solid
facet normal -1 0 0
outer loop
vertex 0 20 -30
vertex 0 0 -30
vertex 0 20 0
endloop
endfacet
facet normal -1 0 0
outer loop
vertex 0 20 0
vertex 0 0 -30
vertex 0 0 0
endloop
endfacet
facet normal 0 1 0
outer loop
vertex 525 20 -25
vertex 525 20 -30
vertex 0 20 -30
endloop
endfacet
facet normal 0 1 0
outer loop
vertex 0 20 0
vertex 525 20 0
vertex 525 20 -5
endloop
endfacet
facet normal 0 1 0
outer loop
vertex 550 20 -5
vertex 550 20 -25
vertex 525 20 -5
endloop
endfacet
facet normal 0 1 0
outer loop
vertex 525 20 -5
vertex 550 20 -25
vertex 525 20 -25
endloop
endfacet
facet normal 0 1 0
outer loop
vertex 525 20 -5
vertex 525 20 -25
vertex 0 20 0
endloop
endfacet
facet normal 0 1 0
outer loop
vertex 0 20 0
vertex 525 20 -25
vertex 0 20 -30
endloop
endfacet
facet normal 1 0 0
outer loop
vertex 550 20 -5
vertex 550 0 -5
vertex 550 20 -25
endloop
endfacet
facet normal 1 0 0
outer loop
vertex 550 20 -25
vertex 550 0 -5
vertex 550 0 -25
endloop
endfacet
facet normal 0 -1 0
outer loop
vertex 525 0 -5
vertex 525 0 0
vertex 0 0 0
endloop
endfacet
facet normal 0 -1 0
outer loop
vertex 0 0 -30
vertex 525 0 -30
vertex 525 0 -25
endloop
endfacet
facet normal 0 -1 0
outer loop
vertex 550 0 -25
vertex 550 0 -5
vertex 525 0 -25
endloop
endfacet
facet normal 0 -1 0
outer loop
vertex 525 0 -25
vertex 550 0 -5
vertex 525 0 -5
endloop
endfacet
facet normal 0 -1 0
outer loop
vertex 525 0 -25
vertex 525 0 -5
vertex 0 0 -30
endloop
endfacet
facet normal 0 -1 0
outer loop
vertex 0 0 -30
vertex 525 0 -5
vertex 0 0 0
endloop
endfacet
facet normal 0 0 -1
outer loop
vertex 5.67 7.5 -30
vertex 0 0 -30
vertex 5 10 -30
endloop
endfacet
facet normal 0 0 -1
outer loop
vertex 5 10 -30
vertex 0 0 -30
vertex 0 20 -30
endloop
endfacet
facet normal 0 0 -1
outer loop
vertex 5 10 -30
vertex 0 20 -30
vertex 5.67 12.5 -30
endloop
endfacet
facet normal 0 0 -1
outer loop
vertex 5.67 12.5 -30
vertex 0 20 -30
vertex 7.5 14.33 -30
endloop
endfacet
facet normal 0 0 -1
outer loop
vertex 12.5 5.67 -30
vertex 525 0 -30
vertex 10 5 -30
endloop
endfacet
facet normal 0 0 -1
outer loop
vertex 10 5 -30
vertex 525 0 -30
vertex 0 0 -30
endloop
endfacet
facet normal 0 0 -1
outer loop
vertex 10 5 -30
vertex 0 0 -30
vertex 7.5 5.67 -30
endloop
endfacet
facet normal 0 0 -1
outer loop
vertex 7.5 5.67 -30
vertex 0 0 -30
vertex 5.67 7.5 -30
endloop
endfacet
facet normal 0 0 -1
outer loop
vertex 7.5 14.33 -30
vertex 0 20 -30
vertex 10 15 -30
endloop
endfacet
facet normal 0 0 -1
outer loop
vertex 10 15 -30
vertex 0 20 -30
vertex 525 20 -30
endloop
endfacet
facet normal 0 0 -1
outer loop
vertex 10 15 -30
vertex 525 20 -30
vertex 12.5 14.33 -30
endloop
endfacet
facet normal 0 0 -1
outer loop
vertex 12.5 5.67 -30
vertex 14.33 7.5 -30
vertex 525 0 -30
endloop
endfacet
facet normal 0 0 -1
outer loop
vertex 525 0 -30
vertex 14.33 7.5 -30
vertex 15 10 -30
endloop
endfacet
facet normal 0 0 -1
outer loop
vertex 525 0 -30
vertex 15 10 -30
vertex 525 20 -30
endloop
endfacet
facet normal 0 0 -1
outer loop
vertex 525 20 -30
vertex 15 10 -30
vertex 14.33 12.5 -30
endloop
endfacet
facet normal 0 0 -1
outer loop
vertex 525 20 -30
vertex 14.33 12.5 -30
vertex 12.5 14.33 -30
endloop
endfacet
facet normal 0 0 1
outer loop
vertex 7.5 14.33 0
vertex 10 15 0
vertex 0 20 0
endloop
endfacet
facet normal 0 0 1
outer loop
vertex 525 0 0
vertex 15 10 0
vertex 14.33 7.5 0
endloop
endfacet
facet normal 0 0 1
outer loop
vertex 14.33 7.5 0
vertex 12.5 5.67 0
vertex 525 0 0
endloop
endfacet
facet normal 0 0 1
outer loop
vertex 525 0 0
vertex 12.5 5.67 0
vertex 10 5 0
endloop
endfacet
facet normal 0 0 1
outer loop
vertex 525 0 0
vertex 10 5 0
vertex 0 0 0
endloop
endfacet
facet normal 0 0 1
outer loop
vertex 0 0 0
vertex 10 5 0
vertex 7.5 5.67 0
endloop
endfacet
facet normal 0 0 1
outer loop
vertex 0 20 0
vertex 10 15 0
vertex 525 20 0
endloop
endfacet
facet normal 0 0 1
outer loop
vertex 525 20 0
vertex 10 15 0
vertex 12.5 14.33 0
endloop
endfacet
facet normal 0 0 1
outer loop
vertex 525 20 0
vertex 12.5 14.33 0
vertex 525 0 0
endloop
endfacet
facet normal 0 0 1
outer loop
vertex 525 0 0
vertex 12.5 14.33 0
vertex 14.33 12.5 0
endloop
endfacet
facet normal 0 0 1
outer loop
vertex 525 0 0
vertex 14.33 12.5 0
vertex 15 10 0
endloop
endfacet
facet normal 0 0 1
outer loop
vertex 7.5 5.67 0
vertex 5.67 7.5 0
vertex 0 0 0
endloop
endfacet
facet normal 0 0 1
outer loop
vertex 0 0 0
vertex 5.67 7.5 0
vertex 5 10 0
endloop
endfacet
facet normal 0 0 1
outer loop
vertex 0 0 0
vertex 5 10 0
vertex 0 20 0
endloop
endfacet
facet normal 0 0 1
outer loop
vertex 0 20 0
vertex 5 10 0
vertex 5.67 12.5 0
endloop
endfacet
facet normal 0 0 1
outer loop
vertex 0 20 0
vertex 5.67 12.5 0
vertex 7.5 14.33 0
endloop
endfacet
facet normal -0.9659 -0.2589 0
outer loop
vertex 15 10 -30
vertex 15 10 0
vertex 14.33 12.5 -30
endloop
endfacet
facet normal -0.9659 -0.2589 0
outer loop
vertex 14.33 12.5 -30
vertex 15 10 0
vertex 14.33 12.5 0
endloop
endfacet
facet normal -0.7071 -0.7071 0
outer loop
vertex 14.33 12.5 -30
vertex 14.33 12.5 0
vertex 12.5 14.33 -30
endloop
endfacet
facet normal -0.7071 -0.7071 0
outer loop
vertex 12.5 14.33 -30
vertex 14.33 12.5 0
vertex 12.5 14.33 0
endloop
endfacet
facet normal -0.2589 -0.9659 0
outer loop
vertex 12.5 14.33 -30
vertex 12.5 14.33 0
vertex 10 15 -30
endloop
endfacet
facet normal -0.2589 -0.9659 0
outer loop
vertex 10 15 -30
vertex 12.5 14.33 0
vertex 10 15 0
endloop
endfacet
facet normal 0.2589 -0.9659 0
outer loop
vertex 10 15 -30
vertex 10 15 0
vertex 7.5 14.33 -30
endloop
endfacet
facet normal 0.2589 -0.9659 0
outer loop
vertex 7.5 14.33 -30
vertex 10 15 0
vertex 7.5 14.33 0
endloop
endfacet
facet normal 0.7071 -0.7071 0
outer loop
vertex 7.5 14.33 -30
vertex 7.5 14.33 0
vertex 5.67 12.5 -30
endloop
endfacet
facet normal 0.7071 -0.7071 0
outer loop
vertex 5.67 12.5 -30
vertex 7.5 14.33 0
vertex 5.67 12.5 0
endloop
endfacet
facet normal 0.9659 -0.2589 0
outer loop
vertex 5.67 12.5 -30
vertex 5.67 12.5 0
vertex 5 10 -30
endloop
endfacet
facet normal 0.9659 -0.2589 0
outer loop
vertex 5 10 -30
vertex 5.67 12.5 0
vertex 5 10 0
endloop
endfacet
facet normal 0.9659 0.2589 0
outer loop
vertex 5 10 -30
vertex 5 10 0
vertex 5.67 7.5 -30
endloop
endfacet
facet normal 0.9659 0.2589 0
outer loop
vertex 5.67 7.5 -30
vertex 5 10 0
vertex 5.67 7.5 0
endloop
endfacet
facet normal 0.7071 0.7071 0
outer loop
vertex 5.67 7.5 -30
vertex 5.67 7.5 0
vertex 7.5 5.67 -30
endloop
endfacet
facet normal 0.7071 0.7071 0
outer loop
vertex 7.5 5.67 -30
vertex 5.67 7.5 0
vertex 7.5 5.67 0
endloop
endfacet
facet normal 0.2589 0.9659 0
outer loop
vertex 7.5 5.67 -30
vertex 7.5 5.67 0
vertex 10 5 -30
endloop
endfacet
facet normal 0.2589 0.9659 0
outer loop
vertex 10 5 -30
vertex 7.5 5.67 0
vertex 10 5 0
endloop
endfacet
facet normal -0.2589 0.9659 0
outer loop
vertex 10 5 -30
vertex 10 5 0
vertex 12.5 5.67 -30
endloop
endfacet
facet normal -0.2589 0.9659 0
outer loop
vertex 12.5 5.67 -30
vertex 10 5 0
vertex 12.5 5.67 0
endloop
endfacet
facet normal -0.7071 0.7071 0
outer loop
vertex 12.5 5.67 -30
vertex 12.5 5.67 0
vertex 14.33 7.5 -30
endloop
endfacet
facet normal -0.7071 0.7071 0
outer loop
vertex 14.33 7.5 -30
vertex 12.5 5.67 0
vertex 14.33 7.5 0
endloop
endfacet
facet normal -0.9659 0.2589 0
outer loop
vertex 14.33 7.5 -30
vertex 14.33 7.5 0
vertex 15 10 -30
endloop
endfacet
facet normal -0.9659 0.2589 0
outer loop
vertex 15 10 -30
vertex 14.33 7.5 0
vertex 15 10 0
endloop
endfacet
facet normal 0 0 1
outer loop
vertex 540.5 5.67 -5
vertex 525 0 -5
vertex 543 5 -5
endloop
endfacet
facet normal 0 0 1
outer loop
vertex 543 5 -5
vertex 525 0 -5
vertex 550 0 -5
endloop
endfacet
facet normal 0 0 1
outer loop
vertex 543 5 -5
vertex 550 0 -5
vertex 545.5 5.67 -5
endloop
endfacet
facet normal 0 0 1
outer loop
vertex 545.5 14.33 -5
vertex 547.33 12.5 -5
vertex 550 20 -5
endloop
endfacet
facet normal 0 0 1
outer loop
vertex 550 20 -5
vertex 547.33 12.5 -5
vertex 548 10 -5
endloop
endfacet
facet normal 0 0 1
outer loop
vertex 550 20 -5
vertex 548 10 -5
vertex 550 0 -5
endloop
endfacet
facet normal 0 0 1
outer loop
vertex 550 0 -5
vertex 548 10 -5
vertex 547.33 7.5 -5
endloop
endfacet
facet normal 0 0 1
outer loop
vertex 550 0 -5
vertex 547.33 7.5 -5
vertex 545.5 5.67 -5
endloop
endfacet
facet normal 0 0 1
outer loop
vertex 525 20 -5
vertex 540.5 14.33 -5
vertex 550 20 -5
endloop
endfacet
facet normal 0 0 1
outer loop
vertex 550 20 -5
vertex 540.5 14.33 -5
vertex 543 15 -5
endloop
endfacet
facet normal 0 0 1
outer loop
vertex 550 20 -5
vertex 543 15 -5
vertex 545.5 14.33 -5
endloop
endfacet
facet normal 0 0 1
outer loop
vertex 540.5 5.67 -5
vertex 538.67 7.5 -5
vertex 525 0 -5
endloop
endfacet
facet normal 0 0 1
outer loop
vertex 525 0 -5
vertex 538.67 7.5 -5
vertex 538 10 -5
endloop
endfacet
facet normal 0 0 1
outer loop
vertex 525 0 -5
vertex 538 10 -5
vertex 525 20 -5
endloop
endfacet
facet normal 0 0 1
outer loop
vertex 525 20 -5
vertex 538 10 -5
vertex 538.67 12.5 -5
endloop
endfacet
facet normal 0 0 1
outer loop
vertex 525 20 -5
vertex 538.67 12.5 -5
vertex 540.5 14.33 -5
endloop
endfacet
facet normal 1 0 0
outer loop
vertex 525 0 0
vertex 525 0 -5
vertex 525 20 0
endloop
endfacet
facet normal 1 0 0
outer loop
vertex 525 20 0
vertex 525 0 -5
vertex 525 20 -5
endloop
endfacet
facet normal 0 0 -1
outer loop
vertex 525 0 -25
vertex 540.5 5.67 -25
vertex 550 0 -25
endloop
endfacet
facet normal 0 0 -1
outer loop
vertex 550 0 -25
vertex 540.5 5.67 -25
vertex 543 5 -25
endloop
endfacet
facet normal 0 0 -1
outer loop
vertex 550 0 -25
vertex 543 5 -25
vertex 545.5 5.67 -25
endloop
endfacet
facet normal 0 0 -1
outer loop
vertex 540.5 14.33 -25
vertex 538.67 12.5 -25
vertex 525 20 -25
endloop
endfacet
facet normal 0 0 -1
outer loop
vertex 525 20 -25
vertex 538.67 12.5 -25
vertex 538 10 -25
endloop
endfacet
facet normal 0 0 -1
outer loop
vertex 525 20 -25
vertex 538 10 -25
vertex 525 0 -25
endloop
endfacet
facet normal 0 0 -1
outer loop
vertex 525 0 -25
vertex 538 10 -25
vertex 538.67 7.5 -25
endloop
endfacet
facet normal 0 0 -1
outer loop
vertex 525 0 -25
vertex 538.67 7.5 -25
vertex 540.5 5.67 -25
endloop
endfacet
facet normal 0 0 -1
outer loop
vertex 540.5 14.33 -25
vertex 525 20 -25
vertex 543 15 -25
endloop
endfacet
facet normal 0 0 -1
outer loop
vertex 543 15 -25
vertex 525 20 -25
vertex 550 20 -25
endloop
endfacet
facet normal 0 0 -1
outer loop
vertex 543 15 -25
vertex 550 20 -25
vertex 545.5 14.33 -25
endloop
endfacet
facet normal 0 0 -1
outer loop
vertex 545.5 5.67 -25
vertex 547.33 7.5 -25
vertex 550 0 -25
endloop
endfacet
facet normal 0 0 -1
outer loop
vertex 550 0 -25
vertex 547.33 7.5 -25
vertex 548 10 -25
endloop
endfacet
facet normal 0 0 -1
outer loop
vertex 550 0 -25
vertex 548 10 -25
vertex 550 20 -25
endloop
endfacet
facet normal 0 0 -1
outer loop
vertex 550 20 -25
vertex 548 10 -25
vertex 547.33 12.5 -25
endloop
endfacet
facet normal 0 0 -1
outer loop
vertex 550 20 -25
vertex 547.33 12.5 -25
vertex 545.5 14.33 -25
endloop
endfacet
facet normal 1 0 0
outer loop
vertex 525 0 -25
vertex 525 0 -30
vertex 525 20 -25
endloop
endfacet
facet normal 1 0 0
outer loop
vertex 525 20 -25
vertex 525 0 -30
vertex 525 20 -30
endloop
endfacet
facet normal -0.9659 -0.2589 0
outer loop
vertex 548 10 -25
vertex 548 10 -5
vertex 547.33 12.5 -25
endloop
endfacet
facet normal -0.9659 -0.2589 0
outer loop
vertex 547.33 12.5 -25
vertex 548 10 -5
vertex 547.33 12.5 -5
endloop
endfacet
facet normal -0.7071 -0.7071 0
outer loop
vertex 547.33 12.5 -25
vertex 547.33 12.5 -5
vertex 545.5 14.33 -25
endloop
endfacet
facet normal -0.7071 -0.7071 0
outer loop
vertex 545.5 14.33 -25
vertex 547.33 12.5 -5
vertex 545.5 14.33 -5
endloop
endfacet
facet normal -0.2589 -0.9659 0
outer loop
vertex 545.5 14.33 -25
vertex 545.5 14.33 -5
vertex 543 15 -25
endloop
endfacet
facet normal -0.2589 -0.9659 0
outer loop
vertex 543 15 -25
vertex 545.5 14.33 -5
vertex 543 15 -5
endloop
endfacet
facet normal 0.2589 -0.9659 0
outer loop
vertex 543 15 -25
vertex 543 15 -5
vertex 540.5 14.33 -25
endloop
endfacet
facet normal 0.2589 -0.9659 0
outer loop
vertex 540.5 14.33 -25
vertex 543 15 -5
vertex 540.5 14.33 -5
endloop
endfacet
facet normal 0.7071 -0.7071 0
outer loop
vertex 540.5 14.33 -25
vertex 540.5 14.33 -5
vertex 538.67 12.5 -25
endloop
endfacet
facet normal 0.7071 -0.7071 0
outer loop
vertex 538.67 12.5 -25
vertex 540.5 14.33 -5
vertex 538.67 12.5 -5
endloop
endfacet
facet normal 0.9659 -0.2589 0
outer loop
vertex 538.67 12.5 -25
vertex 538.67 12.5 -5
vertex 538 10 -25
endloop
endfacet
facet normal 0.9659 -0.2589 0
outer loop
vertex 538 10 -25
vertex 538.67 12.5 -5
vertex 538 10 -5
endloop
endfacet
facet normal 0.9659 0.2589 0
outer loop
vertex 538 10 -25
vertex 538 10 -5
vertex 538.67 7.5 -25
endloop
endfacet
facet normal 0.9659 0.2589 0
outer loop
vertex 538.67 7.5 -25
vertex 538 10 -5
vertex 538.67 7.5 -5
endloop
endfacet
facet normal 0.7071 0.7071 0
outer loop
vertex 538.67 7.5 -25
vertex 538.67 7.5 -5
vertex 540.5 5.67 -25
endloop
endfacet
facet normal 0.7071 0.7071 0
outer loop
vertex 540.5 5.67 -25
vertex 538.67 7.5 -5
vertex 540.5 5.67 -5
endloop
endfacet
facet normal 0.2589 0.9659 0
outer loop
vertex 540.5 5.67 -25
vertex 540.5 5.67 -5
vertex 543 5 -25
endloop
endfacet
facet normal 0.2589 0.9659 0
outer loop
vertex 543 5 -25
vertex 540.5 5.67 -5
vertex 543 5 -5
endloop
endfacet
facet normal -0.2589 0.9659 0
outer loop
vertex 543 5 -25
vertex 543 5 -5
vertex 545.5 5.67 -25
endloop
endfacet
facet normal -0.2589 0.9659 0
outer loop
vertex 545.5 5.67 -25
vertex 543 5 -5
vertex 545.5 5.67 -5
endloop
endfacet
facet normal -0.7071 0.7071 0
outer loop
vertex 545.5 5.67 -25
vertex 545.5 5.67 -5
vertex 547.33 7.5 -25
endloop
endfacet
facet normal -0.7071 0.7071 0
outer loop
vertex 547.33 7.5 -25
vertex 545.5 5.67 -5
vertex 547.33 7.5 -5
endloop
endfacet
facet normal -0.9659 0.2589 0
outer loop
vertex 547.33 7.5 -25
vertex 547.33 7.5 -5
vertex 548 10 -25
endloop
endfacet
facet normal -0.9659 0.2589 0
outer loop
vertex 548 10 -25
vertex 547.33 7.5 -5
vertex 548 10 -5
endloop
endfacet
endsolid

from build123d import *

# Parameters (mm, degrees)
SKETCH1_W           = 550
SKETCH1_H           = 20
SKETCH1_R           = 5
BOSS_EXTRUDE1_DEPTH = 30
SKETCH3_W           = 25
SKETCH3_H           = 5
CUT_EXTRUDE2_DEPTH  = 552.180551181


with BuildPart() as part:
    # Sketch1 → Boss-Extrude1 (new body)
    with BuildSketch(Plane.XY):
        with Locations((275, 10)):
            Rectangle(SKETCH1_W, SKETCH1_H)
        with Locations((10, 10)):
            Circle(SKETCH1_R, mode=Mode.SUBTRACT)
        with Locations((543, 10)):
            Circle(SKETCH1_R, mode=Mode.SUBTRACT)
    extrude(amount=-BOSS_EXTRUDE1_DEPTH)

    # Sketch3 → Cut-Extrude2 (cut, through all)
    with BuildSketch(Plane(origin=(0, 20, 0), x_dir=(1, 0, 0), z_dir=(0, 1, 0))):
        with Locations((537.5, 2.5)):
            Rectangle(SKETCH3_W, SKETCH3_H)
        with Locations((537.5, 27.5)):
            Rectangle(SKETCH3_W, SKETCH3_H)
    extrude(amount=-CUT_EXTRUDE2_DEPTH, mode=Mode.SUBTRACT)


solid = part.part
